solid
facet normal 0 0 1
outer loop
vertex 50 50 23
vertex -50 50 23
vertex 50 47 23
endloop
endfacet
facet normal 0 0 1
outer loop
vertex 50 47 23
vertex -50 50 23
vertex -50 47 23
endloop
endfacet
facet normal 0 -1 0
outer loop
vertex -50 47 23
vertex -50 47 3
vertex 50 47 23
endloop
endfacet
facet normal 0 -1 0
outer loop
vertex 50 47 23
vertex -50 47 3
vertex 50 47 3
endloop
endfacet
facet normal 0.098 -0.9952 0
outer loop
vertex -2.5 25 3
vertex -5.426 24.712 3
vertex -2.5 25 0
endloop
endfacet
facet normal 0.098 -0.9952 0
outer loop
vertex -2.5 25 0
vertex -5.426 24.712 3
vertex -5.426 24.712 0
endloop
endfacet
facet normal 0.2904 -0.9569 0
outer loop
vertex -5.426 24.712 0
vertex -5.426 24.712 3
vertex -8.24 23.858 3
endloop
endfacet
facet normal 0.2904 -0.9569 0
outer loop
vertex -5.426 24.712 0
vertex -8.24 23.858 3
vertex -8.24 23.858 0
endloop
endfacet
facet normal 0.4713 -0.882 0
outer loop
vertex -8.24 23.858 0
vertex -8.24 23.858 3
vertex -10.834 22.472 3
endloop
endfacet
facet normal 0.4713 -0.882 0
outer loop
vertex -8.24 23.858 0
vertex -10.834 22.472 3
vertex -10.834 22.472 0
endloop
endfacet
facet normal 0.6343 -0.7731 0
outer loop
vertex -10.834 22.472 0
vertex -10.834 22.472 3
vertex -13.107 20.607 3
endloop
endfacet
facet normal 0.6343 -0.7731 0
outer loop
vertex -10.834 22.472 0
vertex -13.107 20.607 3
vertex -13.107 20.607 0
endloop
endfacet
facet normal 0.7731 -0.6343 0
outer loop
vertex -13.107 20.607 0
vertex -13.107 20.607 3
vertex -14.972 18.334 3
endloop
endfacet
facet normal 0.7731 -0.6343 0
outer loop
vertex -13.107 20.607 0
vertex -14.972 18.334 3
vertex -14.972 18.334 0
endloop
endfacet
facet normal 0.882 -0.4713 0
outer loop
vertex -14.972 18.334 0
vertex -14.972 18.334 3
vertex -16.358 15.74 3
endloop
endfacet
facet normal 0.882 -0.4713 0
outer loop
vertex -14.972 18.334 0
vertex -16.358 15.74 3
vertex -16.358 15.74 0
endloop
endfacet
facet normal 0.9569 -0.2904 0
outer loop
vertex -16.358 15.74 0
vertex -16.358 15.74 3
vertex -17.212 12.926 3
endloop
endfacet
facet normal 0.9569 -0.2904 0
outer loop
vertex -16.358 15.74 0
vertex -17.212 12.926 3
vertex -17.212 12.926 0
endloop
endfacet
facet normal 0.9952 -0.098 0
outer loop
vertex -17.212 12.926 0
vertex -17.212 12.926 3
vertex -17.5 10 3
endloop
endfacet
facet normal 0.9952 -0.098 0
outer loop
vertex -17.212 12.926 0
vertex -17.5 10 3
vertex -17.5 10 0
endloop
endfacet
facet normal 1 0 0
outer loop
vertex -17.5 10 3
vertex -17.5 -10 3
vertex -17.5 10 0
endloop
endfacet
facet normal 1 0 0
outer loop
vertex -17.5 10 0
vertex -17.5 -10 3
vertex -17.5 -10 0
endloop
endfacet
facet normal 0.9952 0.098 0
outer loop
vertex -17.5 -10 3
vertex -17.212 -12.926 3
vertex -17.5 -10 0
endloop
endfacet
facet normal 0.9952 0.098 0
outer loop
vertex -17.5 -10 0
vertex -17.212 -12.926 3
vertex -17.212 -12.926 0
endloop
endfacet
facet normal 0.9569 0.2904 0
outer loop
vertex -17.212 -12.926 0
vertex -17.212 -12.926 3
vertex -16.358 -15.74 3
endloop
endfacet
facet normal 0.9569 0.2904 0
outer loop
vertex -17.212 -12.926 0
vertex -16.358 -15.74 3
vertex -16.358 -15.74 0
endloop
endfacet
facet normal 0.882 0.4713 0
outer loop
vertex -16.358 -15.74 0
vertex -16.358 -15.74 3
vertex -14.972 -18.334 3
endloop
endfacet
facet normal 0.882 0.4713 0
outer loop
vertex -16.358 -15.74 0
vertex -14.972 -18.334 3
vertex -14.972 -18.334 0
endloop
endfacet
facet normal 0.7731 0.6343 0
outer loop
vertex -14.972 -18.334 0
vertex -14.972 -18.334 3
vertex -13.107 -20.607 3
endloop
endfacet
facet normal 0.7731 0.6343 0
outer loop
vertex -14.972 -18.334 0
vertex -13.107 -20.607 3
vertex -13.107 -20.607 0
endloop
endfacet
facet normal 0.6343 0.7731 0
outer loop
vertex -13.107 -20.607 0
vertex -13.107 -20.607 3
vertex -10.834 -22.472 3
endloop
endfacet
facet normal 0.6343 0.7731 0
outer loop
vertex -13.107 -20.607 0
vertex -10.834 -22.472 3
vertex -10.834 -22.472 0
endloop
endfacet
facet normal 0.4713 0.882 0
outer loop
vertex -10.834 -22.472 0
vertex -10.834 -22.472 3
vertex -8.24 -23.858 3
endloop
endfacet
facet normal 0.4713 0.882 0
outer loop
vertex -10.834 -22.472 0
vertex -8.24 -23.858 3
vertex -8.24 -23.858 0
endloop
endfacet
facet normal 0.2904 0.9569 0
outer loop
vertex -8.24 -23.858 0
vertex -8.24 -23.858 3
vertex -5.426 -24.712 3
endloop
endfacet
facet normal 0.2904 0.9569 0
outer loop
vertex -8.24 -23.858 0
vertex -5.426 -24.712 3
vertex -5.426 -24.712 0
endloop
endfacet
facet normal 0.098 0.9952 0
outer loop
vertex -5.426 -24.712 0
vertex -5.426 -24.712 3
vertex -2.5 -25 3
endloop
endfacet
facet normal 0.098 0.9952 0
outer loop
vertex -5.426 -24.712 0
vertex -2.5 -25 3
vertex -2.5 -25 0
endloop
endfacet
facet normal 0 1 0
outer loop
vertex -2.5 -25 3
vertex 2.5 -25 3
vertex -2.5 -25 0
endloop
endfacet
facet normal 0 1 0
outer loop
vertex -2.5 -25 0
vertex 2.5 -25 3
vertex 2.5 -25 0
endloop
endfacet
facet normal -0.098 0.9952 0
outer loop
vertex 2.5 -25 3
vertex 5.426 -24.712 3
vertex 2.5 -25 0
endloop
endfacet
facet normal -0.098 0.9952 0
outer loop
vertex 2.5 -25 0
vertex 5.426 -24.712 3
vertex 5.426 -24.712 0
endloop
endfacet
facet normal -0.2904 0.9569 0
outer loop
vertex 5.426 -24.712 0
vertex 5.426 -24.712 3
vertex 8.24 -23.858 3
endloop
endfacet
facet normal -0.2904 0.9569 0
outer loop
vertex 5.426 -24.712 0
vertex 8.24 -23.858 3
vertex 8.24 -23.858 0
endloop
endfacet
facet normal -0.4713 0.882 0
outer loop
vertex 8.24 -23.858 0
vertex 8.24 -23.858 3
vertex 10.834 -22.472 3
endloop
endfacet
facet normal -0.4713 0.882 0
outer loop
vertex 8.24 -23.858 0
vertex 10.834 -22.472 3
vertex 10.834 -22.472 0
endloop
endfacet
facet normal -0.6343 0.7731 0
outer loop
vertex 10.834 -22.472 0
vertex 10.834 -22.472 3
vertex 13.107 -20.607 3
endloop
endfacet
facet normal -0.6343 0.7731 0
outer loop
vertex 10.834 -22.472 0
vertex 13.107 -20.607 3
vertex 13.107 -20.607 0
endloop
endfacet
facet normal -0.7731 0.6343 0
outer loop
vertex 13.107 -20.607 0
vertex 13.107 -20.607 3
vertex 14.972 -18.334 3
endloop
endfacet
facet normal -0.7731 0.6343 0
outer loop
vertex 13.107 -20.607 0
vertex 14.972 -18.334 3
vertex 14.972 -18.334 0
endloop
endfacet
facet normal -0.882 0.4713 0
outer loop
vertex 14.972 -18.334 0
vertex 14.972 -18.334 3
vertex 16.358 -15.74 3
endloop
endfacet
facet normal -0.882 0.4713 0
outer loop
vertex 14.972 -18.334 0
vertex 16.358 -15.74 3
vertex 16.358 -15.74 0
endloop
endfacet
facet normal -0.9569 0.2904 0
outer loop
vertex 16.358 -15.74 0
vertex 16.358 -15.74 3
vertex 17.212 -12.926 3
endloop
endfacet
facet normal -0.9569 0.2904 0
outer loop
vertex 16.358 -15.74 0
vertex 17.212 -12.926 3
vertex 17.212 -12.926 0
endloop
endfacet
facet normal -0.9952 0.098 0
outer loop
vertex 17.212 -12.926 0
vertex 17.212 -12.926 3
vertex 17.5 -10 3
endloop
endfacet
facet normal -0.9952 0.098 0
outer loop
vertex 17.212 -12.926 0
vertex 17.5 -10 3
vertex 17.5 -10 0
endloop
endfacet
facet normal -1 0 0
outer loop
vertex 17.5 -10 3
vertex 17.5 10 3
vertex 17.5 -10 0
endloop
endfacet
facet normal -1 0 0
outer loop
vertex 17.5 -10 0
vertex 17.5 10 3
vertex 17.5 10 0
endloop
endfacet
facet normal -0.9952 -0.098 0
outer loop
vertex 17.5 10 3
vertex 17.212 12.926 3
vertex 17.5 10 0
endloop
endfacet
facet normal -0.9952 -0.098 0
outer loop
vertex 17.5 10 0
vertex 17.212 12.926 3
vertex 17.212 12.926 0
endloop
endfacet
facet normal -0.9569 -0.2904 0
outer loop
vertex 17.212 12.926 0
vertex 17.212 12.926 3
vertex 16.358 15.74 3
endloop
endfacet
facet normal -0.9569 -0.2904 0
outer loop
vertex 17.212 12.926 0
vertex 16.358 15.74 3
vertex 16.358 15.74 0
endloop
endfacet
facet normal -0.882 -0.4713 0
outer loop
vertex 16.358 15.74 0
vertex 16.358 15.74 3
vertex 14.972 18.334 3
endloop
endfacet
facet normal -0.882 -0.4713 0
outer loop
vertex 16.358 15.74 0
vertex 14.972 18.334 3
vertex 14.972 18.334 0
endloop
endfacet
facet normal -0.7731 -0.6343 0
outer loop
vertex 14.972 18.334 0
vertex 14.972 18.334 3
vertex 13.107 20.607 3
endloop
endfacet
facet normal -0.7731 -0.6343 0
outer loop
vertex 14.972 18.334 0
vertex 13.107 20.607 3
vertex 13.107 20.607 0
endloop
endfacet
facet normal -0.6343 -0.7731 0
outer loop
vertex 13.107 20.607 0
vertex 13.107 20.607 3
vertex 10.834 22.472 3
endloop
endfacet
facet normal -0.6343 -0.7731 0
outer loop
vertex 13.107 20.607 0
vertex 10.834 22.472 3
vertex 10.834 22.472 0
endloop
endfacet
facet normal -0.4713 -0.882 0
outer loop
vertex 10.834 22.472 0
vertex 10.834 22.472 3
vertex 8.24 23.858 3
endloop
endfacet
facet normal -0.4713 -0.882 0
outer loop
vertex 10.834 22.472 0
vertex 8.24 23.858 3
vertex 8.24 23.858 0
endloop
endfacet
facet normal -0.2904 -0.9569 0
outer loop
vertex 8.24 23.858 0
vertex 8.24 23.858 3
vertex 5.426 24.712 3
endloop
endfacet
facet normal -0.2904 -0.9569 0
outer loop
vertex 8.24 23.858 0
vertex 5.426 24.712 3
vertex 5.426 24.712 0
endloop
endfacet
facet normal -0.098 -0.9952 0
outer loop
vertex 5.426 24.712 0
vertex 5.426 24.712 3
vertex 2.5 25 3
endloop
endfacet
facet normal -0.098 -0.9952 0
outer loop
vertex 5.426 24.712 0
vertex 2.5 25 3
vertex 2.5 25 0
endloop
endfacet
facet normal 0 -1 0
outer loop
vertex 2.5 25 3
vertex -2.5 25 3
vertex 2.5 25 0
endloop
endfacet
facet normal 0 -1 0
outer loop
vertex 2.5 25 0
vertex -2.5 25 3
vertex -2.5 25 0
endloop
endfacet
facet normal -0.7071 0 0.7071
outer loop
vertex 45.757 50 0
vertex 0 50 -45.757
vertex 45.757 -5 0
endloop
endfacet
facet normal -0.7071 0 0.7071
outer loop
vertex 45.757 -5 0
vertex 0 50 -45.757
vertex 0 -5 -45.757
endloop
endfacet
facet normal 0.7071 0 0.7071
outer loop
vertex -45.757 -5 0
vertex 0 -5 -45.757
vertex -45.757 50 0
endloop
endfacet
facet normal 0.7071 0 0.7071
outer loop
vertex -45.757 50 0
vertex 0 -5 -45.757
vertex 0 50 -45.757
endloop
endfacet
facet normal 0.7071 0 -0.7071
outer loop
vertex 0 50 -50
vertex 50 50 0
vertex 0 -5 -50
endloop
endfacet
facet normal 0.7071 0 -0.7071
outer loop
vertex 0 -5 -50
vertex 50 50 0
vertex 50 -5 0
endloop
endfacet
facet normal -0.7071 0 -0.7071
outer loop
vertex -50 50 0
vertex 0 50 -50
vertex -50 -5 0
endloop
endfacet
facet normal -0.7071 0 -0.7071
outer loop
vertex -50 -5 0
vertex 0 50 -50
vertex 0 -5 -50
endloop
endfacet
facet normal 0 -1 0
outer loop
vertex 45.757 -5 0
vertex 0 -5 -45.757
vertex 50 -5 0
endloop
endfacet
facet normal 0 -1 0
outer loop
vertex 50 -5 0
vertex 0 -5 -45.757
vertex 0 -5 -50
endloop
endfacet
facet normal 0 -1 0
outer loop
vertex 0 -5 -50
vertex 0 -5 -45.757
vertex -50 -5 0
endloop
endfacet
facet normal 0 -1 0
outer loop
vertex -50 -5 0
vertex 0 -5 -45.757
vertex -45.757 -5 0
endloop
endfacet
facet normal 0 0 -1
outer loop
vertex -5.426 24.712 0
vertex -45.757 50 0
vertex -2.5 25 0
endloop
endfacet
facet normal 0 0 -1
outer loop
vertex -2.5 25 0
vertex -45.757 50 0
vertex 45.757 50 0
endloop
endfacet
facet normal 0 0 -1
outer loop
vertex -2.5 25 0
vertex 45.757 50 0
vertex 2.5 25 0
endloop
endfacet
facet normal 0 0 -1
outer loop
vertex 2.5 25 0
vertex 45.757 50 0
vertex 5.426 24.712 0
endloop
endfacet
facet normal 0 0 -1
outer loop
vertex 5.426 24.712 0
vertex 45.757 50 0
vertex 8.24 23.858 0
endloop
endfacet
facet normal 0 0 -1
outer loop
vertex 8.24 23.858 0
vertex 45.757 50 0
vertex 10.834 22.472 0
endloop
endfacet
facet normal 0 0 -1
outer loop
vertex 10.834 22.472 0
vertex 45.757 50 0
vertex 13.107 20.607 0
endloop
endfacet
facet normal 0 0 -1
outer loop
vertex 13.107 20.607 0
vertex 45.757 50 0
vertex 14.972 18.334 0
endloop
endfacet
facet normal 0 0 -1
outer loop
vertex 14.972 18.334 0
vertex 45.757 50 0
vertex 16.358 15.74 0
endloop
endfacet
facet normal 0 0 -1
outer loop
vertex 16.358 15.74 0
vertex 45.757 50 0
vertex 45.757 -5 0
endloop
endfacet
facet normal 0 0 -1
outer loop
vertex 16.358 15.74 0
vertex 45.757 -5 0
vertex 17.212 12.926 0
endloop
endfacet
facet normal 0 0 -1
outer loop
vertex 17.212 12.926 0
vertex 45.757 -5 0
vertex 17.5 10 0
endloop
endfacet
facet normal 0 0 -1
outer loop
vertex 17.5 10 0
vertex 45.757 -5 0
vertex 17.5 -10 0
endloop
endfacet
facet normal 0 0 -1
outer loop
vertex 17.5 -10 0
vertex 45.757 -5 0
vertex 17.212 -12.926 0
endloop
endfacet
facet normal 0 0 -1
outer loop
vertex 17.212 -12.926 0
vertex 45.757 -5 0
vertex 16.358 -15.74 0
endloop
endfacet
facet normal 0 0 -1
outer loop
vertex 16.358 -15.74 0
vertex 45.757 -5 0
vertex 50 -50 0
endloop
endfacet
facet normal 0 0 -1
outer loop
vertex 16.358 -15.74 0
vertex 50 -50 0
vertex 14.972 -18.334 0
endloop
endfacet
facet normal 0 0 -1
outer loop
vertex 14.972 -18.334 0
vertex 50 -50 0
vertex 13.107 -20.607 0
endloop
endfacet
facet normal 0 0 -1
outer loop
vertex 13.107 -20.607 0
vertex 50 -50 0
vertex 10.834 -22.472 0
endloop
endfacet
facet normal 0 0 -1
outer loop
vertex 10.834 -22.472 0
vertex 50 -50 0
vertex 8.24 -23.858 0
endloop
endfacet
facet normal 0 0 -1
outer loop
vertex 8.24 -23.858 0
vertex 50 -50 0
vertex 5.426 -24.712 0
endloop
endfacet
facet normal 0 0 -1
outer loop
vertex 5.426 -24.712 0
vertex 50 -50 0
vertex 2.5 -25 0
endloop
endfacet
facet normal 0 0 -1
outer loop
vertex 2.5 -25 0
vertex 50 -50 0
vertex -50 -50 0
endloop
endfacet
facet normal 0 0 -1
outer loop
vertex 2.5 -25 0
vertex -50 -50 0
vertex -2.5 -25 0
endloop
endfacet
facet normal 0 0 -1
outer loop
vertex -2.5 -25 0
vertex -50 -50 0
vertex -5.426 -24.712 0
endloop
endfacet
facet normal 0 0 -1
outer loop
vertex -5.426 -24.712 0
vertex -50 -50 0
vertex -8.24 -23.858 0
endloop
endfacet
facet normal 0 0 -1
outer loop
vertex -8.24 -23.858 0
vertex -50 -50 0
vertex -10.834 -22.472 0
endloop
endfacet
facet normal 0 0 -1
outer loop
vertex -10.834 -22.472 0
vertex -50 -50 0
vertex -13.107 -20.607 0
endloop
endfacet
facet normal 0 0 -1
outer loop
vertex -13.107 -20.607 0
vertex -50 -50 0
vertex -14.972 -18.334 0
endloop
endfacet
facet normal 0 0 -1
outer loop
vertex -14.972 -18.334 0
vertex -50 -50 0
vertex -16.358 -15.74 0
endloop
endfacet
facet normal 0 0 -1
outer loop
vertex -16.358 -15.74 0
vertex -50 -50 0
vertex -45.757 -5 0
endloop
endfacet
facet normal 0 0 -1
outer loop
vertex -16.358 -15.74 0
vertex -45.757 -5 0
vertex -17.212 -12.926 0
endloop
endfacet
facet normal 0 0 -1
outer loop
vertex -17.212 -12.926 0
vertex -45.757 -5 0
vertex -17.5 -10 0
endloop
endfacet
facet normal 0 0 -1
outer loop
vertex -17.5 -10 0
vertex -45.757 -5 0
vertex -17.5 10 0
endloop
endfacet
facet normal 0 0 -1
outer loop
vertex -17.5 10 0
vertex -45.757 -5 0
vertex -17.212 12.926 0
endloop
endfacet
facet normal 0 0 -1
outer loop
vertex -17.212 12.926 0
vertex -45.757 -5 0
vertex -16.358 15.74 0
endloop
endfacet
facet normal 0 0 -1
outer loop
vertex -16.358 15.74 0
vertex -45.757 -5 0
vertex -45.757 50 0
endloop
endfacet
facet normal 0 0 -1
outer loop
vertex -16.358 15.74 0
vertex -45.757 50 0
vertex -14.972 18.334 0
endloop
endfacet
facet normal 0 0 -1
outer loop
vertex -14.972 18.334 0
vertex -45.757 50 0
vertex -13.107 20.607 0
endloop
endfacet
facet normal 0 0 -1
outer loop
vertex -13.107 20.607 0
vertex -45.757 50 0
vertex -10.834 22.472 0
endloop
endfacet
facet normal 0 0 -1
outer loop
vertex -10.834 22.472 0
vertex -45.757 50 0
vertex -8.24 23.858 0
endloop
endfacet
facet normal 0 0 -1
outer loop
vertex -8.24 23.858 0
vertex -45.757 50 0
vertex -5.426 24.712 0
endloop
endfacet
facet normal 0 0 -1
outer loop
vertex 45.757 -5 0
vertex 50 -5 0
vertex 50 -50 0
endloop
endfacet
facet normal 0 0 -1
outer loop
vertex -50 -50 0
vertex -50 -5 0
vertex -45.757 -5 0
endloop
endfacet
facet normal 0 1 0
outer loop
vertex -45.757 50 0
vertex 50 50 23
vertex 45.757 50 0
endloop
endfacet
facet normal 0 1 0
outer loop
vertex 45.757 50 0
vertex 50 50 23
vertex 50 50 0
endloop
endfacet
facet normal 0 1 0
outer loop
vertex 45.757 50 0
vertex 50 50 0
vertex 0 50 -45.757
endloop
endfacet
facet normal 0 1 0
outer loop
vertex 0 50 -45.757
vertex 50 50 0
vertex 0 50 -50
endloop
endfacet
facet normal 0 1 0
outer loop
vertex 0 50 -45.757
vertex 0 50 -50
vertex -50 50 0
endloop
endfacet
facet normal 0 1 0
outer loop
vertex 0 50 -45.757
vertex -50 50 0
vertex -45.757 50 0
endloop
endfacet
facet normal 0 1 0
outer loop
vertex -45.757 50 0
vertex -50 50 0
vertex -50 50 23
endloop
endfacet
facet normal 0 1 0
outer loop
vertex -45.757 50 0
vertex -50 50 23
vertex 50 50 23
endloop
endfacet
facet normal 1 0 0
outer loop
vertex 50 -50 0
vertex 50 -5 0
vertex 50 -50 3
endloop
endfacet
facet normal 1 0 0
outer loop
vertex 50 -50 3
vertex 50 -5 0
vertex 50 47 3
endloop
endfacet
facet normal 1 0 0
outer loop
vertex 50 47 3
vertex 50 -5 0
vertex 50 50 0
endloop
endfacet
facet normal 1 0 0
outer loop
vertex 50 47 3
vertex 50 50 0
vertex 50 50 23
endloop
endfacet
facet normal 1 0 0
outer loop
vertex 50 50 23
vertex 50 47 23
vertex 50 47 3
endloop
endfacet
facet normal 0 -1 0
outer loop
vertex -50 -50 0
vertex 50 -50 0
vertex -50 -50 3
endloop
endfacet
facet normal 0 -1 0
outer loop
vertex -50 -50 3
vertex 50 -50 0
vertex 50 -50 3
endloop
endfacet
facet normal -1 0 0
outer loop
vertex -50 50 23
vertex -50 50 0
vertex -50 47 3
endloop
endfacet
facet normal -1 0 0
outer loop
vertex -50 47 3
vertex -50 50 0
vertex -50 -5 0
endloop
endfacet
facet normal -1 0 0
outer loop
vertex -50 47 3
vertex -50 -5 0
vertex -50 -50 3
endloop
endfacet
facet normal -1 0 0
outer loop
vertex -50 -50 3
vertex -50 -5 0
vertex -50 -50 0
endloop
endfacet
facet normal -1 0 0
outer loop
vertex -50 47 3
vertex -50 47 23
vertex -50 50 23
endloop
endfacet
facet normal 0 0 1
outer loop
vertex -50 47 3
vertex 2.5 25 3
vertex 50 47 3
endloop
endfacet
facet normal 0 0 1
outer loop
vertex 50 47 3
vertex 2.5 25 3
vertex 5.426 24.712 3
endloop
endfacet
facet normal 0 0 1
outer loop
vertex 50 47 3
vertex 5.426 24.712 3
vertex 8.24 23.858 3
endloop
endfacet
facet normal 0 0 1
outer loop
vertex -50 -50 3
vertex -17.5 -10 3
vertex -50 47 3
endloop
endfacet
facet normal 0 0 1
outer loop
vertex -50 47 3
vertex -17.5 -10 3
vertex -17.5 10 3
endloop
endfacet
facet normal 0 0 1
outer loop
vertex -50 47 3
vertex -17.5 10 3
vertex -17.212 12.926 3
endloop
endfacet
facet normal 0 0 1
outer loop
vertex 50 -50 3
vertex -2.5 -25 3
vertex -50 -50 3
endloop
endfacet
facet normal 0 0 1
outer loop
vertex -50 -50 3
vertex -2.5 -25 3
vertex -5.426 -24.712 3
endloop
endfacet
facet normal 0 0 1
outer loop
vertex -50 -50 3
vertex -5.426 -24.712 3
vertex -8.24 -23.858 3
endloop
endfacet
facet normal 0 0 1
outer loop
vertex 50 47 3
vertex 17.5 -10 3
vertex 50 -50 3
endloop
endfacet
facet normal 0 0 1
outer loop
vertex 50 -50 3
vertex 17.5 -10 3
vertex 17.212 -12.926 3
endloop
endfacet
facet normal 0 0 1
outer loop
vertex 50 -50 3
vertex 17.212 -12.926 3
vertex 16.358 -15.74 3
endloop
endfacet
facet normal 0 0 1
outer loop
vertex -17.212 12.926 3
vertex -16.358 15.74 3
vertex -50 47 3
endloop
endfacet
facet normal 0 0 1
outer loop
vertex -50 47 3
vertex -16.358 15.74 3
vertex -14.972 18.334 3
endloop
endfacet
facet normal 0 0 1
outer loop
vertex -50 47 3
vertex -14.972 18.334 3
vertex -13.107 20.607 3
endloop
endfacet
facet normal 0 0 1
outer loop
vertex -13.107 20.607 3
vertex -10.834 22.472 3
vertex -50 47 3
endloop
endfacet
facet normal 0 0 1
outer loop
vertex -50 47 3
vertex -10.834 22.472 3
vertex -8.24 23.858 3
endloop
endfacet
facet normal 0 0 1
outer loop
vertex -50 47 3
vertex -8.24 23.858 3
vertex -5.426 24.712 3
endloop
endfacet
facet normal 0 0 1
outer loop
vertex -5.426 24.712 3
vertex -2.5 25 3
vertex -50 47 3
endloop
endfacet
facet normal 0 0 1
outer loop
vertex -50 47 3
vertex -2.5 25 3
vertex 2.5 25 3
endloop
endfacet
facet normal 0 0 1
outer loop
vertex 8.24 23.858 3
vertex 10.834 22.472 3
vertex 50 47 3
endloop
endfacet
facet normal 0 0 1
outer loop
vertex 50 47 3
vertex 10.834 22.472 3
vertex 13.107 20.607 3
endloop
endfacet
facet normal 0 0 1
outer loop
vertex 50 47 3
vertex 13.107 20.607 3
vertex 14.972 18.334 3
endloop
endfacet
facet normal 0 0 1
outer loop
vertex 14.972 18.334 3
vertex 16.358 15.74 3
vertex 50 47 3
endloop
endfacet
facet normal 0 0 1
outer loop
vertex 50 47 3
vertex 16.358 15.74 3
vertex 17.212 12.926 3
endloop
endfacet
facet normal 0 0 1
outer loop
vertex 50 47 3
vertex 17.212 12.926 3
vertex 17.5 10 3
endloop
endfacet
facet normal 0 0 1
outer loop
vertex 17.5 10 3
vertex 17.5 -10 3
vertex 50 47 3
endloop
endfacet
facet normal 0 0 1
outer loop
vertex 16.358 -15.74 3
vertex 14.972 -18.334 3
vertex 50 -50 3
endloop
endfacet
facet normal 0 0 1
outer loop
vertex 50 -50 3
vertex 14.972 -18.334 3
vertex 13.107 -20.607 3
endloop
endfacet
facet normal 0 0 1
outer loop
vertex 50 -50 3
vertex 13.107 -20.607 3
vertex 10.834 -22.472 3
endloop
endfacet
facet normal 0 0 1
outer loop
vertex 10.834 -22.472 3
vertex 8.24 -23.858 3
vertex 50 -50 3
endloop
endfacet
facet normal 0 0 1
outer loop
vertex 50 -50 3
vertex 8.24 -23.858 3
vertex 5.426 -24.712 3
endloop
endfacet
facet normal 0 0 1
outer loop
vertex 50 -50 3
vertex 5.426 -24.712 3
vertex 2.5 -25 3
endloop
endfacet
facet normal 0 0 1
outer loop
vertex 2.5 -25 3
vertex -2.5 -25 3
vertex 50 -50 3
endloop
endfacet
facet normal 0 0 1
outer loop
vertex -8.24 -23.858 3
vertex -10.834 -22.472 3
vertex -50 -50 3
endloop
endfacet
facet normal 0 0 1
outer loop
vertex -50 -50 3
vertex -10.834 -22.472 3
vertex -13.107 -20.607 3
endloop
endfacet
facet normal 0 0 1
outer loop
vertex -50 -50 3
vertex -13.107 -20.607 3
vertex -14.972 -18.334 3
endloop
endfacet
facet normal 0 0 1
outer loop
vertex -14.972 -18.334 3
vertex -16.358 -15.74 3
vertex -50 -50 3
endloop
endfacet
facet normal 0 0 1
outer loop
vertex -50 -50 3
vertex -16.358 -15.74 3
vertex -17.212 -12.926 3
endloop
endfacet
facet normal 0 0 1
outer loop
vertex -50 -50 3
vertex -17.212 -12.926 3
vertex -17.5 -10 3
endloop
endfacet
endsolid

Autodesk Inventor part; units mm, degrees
ref_plane "YZ Plane" through (0, 0, 0) normal (1, 0, 0) x (0, 1, 0)
ref_plane "XZ Plane" through (0, 0, 0) normal (0, 1, 0) x (-1, 0, 0)
ref_plane "XY Plane" through (0, 0, 0) normal (0, 0, 1) x (1, 0, 0)
sketch "Sketch1" plane through (0, 0, 0) normal (0, 0, 1) x (1, 0, 0)
  line L0 (-50, -50) -> (50, -50)
  line L1 (50, -50) -> (50, 50)
  line L2 (50, 50) -> (-50, 50)
  line L3 (-50, 50) -> (-50, -50)
  line L4 (-50, -50) -> (50, 50) construction
  line L5 (50, -50) -> (-50, 50) construction
  point P0 (0, 0)
  dimension "d0" = 100
  dimension "d1" = 100
extrude "Extrusion1" add sketch "Sketch1" along normal blind 3
sketch "Sketch2" plane through (-50, 50, 0) normal (0, 1, 0) x (1, 0, 0)
  line L0 (0, 0) -> (100, 0) projected
  line L1 (0, 0) -> (50, 50)
  line L2 (50, 50) -> (52.1213, 47.8787)
  line L3 (52.1213, 47.8787) -> (2.1213, -2.1213)
  line L4 (2.1213, -2.1213) -> (0, 0)
  line L5 (0, 0) -> (70.7107, 0) construction
  line L6 (100, 0) -> (52.1213, 47.8787)
  line L7 (52.1213, 47.8787) -> (50, 45.7574)
  line L8 (50, 45.7574) -> (97.8787, -2.1213)
  line L9 (97.8787, -2.1213) -> (100, 0)
  point P0 (50, 0)
  dimension "d4" = 45
  dimension "d5" = 3
  dimension "d6" = 3
extrude "Extrusion2" add sketch "Sketch2" against normal blind 55 contours L1 L2 L3 L0 | L0 L3 L4 | L8 L3 L6 L0 | L0 L9 L8
sketch "Sketch3" plane through (0, 0, 3) normal (0, 0, 1) x (1, 0, 0)
  line L0 (2.5, -25) -> (-2.5, -25)
  line L1 (-17.5, -10) -> (-17.5, 10)
  line L2 (-2.5, 25) -> (2.5, 25)
  line L3 (17.5, 10) -> (17.5, -10)
  line L4 (17.5, -25) -> (-17.5, 25) construction
  line L5 (-17.5, -25) -> (17.5, 25) construction
  arc A0 (-2.5, 25) -> (-17.5, 10) centre (-2.5, 10) ccw
  arc A1 (17.5, 10) -> (2.5, 25) centre (2.5, 10) ccw
  arc A2 (2.5, -25) -> (17.5, -10) centre (2.5, -10) ccw
  arc A3 (-17.5, -10) -> (-2.5, -25) centre (-2.5, -10) ccw
  point P0 (0, 0)
  dimension "d9" = 35
  dimension "d10" = 50
  dimension "d11" = 15
extrude "Extrusion3" cut sketch "Sketch3" against normal blind 3
sketch "Sketch5" plane through (-50, 50, 3) normal (0, 1, 0) x (1, 0, 0)
  line L0 (0, 3) -> (0, 0) projected
  line L1 (0, 0) -> (100, 0)
  line L2 (100, 0) -> (100, -20)
  line L3 (100, -20) -> (0, -20)
  line L4 (0, -20) -> (0, 0)
  point P0 (50, 3)
  dimension "d16" = 100
  dimension "d17" = 20
extrude "Extrusion5" add sketch "Sketch5" against normal blind 3
properties part number "fixation_v02"
